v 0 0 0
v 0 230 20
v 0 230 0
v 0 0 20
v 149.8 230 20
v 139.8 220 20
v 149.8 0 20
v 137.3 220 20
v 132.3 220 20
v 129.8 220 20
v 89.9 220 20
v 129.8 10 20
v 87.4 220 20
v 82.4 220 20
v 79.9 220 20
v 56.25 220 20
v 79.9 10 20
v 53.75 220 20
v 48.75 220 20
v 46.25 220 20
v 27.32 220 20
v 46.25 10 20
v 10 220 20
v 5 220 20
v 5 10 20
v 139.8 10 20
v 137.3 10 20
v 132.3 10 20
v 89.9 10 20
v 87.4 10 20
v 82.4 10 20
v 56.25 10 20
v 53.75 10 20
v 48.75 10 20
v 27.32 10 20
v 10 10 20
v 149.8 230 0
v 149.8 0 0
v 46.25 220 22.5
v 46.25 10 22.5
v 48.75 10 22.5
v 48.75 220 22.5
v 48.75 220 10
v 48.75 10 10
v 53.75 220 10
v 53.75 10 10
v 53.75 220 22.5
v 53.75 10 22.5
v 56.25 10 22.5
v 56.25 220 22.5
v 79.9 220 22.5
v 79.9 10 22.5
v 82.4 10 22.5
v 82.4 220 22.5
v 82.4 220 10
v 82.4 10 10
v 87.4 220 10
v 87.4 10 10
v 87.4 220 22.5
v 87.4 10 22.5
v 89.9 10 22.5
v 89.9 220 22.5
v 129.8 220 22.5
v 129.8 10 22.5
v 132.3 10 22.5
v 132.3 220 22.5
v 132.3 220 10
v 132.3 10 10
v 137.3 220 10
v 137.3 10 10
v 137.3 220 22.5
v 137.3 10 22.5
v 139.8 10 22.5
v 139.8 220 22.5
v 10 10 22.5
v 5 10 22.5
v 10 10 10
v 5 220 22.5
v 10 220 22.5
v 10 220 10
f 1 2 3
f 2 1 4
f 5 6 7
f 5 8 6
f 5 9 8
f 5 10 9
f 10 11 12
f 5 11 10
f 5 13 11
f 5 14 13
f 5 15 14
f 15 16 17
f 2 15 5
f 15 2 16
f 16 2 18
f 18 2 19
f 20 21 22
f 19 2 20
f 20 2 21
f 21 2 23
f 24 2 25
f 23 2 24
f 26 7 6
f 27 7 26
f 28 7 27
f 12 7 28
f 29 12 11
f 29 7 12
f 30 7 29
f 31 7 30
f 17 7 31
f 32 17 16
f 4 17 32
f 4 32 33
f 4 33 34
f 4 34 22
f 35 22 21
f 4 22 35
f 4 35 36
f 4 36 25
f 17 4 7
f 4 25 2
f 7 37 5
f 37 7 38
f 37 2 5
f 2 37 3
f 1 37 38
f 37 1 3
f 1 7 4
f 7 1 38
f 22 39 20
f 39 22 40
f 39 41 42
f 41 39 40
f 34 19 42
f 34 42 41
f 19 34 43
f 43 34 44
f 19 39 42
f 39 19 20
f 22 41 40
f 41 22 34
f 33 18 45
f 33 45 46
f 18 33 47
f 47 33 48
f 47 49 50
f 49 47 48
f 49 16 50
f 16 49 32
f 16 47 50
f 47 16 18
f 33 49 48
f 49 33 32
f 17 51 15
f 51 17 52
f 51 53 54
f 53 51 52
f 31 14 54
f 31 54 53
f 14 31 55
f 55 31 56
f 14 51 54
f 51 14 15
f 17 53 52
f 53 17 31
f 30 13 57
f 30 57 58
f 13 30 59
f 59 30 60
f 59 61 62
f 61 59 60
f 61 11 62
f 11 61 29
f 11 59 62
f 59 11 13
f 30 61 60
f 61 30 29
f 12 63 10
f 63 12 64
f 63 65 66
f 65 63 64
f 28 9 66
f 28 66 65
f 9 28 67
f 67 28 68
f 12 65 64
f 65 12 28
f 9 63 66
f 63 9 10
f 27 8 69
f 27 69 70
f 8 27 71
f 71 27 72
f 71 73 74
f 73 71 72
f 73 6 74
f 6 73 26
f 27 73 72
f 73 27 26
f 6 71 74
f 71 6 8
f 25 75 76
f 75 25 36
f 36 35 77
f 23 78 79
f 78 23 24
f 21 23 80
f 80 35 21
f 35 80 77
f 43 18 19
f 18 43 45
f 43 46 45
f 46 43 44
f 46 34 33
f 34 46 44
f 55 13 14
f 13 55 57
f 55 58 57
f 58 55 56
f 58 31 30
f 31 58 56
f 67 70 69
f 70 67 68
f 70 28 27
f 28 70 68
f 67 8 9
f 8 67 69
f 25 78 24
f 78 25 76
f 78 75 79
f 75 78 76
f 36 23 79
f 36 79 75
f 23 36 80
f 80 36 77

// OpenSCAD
// file: defs.scad
w=210;
t1=10;
t3=20;
t=5;
a1=92.5;
a2=79.9;
a3=64.9;
b1=a1/2;
b2=a2;
b3=2*a3;
// main file
include <defs.scad>
 /* This makes the base plate with an angled groove and lip to hold the panel base.
 */
 union() {
     difference() {
         union() {
            cube([b3+2*t1, w+2*t1, t3]);
                                     // Create 3 sets of lips around each of the 3 slots

            translate([t1/2+b1-t, t1, t3-t1]) cube([t/2, w, t/2+t1]);     
            translate([t1/2+b1+t/2, t1, t3]) cube([t/2, w, t/2]);  
          
            translate([t1/2+b2-t, t1, t3]) cube([t/2, w, t/2]);     
            translate([t1/2+b2+t/2, t1, t3]) cube([t/2, w, t/2]);     

            translate([t1/2+b3-t, t1, t3]) cube([t/2, w, t/2]);     
            translate([t1/2+b3+t/2, t1, t3]) cube([t/2, w, t/2]);     
   
         }
        // Create a diaganol slot for the panel base
        translate([t1, t1, t1]) rotate([0,330,0]) cube([t3+t1*2, w, t3-t1]);
     // Create 3 slots
     translate([t1/2+b1-t/2, t1, t3-t1]) cube([t, w, t3]);     
     translate([t1/2+b2-t/2, t1, t3-t1]) cube([t, w, t3]);     
     translate([t1/2+b3-t/2, t1, t3-t1]) cube([t, w, t3]);     
     }

     // Add a lip at the panel base
     translate([t1/2, t1, t3-t1]) cube([t1/2, w, t3-t1+t/2]);
 }
